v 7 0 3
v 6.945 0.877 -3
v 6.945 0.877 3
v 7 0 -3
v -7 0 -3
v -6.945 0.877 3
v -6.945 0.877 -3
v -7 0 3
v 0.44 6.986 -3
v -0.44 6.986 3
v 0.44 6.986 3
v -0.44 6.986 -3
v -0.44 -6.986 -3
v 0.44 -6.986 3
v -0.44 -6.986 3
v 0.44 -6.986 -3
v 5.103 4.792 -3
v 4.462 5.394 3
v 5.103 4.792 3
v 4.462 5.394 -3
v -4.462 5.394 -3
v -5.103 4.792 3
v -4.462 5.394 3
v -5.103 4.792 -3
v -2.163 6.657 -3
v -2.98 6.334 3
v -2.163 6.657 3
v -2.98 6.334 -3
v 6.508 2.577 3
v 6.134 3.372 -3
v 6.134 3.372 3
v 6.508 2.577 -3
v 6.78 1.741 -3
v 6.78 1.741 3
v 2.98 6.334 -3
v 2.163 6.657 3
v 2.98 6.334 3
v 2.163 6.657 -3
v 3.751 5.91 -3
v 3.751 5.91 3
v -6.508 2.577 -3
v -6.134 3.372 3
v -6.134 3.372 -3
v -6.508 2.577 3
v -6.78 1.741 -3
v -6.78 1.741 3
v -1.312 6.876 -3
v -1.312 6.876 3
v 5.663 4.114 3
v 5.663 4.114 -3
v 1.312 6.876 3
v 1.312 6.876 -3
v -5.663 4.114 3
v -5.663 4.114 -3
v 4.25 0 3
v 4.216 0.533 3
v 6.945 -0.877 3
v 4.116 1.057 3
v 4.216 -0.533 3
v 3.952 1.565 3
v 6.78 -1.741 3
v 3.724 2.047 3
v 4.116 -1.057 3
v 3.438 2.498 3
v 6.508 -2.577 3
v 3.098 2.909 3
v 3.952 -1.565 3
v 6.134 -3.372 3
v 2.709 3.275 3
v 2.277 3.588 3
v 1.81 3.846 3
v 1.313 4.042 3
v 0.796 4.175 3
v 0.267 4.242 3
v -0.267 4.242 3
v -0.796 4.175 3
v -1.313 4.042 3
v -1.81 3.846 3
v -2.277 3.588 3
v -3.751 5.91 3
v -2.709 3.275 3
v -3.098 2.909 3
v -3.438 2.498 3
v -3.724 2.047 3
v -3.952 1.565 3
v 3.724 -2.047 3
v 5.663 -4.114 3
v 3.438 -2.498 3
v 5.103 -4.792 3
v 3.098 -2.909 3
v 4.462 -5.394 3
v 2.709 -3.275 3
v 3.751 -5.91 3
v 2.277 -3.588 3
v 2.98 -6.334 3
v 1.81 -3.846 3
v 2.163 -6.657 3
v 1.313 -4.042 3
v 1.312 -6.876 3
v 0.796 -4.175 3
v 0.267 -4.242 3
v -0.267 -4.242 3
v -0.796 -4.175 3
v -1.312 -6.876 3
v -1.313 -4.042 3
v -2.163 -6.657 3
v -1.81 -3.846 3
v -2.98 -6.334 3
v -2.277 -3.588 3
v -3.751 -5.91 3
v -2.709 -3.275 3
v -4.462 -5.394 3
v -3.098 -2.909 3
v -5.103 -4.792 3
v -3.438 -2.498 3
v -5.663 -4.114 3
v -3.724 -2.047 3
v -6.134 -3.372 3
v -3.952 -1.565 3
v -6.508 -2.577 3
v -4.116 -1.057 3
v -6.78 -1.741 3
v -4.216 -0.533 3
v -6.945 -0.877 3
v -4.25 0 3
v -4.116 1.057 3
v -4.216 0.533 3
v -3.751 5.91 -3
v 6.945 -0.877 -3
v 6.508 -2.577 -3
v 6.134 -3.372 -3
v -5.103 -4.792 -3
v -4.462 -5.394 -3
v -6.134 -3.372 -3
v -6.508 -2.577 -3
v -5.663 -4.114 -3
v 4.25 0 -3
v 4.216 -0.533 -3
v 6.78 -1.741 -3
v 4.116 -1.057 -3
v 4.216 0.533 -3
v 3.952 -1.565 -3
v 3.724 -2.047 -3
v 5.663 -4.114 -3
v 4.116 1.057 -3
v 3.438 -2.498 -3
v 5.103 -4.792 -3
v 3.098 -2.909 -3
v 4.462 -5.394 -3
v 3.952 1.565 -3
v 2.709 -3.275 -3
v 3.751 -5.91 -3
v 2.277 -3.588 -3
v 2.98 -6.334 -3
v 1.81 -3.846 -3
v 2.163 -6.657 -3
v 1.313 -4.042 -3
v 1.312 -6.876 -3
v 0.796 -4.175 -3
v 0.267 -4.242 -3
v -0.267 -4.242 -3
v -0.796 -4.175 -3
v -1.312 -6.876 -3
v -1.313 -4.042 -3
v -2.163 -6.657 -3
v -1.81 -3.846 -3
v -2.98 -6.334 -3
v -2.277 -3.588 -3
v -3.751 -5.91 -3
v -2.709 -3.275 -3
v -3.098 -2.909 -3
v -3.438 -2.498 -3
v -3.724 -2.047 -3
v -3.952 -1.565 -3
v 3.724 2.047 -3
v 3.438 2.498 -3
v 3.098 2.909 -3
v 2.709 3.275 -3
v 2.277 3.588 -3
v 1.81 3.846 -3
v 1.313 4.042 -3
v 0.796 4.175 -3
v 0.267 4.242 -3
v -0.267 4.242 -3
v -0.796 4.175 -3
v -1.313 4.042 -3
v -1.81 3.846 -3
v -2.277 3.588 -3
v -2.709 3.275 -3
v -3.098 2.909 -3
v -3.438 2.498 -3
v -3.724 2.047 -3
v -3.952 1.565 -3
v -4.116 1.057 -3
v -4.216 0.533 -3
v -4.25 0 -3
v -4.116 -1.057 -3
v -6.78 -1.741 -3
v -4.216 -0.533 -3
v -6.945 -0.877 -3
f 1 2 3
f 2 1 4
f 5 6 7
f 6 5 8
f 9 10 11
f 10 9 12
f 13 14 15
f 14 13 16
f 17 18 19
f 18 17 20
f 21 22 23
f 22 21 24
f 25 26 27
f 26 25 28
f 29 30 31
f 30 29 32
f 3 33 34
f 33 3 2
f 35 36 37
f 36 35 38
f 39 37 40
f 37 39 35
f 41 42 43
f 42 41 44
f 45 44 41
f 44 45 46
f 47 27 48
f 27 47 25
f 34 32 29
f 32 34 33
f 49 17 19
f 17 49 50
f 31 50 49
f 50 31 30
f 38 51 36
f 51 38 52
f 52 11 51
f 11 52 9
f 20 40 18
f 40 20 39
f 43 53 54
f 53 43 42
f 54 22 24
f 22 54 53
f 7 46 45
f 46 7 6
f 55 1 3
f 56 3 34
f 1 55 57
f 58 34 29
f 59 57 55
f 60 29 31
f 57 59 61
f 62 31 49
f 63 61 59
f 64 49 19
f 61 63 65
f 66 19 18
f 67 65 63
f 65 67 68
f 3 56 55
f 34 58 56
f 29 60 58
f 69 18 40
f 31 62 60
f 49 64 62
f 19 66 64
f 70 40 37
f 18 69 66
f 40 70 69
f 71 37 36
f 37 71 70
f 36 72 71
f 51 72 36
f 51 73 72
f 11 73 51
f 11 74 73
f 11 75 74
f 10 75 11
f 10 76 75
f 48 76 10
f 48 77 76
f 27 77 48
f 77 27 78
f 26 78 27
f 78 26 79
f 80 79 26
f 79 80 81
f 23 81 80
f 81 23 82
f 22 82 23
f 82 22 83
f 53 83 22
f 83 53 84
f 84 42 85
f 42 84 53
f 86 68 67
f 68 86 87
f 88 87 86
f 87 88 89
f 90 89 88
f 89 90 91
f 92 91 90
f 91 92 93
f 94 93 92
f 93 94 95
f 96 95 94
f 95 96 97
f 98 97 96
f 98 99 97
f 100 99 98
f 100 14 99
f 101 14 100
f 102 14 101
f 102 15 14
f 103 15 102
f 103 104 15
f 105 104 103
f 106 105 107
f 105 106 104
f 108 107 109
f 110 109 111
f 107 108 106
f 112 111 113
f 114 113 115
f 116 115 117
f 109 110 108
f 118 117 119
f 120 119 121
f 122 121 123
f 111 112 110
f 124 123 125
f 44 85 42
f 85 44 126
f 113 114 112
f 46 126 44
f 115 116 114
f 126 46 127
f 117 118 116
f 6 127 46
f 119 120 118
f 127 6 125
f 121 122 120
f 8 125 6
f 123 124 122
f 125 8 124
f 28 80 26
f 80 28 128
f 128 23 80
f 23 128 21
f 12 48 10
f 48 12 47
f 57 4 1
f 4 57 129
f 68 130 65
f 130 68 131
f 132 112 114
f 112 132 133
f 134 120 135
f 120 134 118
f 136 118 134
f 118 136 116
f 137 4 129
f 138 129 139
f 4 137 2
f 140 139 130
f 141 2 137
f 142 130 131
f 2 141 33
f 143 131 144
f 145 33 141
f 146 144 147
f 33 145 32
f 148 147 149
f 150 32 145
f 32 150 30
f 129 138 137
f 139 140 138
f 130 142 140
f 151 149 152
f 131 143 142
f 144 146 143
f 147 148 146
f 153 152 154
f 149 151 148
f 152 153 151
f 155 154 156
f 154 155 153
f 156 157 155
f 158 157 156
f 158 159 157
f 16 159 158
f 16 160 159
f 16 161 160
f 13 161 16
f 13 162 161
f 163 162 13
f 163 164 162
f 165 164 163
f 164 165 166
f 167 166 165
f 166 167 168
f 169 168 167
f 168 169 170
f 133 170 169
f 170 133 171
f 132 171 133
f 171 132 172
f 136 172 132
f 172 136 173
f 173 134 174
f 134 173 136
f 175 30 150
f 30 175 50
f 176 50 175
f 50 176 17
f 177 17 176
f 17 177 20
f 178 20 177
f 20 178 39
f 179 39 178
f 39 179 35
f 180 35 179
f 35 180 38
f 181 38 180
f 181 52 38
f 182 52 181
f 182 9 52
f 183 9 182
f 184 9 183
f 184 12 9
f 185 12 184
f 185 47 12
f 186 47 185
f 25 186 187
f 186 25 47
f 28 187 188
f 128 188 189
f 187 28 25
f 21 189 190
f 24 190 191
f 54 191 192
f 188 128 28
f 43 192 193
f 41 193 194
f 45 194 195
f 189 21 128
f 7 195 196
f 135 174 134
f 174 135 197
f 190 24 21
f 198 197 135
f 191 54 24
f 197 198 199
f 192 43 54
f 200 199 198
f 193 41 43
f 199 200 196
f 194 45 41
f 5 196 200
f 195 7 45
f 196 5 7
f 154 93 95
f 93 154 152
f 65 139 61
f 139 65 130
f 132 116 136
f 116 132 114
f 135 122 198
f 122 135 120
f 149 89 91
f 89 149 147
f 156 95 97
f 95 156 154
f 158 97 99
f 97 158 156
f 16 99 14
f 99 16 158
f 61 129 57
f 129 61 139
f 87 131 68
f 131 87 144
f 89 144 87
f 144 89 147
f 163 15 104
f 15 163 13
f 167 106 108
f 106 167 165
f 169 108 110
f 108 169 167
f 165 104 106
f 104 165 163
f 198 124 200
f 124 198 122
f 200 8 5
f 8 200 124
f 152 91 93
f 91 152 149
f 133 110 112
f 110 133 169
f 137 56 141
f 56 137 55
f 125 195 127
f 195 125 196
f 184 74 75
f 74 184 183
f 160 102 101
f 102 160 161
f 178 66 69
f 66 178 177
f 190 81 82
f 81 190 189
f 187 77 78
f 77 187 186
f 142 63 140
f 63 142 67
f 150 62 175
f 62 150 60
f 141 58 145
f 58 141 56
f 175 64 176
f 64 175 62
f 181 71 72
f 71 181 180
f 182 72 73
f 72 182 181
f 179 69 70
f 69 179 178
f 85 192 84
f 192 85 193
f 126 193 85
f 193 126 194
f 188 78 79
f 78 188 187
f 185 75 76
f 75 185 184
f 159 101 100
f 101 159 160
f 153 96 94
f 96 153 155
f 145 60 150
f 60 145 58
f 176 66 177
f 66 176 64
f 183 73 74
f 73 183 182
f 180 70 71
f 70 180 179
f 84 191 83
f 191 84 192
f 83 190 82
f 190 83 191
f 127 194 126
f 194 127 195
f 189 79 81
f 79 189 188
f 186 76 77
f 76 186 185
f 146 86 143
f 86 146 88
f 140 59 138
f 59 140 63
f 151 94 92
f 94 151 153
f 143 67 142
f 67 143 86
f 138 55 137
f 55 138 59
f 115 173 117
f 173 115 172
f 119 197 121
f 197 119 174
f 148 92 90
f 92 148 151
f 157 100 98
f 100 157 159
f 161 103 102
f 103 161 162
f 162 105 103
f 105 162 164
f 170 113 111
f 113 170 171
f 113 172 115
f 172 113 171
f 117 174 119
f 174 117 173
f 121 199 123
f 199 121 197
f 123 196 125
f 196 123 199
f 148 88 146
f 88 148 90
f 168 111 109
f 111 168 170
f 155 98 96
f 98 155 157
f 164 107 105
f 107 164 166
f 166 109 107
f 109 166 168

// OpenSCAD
$fn = 50;


difference() {
	union() {
		translate(v = [0, 0, -3.0000000000]) {
			cylinder(h = 6, r = 7.0000000000);
		}
	}
	union() {
		translate(v = [0, 0, -100.0000000000]) {
			cylinder(h = 200, r = 4.2500000000);
		}
	}
}
